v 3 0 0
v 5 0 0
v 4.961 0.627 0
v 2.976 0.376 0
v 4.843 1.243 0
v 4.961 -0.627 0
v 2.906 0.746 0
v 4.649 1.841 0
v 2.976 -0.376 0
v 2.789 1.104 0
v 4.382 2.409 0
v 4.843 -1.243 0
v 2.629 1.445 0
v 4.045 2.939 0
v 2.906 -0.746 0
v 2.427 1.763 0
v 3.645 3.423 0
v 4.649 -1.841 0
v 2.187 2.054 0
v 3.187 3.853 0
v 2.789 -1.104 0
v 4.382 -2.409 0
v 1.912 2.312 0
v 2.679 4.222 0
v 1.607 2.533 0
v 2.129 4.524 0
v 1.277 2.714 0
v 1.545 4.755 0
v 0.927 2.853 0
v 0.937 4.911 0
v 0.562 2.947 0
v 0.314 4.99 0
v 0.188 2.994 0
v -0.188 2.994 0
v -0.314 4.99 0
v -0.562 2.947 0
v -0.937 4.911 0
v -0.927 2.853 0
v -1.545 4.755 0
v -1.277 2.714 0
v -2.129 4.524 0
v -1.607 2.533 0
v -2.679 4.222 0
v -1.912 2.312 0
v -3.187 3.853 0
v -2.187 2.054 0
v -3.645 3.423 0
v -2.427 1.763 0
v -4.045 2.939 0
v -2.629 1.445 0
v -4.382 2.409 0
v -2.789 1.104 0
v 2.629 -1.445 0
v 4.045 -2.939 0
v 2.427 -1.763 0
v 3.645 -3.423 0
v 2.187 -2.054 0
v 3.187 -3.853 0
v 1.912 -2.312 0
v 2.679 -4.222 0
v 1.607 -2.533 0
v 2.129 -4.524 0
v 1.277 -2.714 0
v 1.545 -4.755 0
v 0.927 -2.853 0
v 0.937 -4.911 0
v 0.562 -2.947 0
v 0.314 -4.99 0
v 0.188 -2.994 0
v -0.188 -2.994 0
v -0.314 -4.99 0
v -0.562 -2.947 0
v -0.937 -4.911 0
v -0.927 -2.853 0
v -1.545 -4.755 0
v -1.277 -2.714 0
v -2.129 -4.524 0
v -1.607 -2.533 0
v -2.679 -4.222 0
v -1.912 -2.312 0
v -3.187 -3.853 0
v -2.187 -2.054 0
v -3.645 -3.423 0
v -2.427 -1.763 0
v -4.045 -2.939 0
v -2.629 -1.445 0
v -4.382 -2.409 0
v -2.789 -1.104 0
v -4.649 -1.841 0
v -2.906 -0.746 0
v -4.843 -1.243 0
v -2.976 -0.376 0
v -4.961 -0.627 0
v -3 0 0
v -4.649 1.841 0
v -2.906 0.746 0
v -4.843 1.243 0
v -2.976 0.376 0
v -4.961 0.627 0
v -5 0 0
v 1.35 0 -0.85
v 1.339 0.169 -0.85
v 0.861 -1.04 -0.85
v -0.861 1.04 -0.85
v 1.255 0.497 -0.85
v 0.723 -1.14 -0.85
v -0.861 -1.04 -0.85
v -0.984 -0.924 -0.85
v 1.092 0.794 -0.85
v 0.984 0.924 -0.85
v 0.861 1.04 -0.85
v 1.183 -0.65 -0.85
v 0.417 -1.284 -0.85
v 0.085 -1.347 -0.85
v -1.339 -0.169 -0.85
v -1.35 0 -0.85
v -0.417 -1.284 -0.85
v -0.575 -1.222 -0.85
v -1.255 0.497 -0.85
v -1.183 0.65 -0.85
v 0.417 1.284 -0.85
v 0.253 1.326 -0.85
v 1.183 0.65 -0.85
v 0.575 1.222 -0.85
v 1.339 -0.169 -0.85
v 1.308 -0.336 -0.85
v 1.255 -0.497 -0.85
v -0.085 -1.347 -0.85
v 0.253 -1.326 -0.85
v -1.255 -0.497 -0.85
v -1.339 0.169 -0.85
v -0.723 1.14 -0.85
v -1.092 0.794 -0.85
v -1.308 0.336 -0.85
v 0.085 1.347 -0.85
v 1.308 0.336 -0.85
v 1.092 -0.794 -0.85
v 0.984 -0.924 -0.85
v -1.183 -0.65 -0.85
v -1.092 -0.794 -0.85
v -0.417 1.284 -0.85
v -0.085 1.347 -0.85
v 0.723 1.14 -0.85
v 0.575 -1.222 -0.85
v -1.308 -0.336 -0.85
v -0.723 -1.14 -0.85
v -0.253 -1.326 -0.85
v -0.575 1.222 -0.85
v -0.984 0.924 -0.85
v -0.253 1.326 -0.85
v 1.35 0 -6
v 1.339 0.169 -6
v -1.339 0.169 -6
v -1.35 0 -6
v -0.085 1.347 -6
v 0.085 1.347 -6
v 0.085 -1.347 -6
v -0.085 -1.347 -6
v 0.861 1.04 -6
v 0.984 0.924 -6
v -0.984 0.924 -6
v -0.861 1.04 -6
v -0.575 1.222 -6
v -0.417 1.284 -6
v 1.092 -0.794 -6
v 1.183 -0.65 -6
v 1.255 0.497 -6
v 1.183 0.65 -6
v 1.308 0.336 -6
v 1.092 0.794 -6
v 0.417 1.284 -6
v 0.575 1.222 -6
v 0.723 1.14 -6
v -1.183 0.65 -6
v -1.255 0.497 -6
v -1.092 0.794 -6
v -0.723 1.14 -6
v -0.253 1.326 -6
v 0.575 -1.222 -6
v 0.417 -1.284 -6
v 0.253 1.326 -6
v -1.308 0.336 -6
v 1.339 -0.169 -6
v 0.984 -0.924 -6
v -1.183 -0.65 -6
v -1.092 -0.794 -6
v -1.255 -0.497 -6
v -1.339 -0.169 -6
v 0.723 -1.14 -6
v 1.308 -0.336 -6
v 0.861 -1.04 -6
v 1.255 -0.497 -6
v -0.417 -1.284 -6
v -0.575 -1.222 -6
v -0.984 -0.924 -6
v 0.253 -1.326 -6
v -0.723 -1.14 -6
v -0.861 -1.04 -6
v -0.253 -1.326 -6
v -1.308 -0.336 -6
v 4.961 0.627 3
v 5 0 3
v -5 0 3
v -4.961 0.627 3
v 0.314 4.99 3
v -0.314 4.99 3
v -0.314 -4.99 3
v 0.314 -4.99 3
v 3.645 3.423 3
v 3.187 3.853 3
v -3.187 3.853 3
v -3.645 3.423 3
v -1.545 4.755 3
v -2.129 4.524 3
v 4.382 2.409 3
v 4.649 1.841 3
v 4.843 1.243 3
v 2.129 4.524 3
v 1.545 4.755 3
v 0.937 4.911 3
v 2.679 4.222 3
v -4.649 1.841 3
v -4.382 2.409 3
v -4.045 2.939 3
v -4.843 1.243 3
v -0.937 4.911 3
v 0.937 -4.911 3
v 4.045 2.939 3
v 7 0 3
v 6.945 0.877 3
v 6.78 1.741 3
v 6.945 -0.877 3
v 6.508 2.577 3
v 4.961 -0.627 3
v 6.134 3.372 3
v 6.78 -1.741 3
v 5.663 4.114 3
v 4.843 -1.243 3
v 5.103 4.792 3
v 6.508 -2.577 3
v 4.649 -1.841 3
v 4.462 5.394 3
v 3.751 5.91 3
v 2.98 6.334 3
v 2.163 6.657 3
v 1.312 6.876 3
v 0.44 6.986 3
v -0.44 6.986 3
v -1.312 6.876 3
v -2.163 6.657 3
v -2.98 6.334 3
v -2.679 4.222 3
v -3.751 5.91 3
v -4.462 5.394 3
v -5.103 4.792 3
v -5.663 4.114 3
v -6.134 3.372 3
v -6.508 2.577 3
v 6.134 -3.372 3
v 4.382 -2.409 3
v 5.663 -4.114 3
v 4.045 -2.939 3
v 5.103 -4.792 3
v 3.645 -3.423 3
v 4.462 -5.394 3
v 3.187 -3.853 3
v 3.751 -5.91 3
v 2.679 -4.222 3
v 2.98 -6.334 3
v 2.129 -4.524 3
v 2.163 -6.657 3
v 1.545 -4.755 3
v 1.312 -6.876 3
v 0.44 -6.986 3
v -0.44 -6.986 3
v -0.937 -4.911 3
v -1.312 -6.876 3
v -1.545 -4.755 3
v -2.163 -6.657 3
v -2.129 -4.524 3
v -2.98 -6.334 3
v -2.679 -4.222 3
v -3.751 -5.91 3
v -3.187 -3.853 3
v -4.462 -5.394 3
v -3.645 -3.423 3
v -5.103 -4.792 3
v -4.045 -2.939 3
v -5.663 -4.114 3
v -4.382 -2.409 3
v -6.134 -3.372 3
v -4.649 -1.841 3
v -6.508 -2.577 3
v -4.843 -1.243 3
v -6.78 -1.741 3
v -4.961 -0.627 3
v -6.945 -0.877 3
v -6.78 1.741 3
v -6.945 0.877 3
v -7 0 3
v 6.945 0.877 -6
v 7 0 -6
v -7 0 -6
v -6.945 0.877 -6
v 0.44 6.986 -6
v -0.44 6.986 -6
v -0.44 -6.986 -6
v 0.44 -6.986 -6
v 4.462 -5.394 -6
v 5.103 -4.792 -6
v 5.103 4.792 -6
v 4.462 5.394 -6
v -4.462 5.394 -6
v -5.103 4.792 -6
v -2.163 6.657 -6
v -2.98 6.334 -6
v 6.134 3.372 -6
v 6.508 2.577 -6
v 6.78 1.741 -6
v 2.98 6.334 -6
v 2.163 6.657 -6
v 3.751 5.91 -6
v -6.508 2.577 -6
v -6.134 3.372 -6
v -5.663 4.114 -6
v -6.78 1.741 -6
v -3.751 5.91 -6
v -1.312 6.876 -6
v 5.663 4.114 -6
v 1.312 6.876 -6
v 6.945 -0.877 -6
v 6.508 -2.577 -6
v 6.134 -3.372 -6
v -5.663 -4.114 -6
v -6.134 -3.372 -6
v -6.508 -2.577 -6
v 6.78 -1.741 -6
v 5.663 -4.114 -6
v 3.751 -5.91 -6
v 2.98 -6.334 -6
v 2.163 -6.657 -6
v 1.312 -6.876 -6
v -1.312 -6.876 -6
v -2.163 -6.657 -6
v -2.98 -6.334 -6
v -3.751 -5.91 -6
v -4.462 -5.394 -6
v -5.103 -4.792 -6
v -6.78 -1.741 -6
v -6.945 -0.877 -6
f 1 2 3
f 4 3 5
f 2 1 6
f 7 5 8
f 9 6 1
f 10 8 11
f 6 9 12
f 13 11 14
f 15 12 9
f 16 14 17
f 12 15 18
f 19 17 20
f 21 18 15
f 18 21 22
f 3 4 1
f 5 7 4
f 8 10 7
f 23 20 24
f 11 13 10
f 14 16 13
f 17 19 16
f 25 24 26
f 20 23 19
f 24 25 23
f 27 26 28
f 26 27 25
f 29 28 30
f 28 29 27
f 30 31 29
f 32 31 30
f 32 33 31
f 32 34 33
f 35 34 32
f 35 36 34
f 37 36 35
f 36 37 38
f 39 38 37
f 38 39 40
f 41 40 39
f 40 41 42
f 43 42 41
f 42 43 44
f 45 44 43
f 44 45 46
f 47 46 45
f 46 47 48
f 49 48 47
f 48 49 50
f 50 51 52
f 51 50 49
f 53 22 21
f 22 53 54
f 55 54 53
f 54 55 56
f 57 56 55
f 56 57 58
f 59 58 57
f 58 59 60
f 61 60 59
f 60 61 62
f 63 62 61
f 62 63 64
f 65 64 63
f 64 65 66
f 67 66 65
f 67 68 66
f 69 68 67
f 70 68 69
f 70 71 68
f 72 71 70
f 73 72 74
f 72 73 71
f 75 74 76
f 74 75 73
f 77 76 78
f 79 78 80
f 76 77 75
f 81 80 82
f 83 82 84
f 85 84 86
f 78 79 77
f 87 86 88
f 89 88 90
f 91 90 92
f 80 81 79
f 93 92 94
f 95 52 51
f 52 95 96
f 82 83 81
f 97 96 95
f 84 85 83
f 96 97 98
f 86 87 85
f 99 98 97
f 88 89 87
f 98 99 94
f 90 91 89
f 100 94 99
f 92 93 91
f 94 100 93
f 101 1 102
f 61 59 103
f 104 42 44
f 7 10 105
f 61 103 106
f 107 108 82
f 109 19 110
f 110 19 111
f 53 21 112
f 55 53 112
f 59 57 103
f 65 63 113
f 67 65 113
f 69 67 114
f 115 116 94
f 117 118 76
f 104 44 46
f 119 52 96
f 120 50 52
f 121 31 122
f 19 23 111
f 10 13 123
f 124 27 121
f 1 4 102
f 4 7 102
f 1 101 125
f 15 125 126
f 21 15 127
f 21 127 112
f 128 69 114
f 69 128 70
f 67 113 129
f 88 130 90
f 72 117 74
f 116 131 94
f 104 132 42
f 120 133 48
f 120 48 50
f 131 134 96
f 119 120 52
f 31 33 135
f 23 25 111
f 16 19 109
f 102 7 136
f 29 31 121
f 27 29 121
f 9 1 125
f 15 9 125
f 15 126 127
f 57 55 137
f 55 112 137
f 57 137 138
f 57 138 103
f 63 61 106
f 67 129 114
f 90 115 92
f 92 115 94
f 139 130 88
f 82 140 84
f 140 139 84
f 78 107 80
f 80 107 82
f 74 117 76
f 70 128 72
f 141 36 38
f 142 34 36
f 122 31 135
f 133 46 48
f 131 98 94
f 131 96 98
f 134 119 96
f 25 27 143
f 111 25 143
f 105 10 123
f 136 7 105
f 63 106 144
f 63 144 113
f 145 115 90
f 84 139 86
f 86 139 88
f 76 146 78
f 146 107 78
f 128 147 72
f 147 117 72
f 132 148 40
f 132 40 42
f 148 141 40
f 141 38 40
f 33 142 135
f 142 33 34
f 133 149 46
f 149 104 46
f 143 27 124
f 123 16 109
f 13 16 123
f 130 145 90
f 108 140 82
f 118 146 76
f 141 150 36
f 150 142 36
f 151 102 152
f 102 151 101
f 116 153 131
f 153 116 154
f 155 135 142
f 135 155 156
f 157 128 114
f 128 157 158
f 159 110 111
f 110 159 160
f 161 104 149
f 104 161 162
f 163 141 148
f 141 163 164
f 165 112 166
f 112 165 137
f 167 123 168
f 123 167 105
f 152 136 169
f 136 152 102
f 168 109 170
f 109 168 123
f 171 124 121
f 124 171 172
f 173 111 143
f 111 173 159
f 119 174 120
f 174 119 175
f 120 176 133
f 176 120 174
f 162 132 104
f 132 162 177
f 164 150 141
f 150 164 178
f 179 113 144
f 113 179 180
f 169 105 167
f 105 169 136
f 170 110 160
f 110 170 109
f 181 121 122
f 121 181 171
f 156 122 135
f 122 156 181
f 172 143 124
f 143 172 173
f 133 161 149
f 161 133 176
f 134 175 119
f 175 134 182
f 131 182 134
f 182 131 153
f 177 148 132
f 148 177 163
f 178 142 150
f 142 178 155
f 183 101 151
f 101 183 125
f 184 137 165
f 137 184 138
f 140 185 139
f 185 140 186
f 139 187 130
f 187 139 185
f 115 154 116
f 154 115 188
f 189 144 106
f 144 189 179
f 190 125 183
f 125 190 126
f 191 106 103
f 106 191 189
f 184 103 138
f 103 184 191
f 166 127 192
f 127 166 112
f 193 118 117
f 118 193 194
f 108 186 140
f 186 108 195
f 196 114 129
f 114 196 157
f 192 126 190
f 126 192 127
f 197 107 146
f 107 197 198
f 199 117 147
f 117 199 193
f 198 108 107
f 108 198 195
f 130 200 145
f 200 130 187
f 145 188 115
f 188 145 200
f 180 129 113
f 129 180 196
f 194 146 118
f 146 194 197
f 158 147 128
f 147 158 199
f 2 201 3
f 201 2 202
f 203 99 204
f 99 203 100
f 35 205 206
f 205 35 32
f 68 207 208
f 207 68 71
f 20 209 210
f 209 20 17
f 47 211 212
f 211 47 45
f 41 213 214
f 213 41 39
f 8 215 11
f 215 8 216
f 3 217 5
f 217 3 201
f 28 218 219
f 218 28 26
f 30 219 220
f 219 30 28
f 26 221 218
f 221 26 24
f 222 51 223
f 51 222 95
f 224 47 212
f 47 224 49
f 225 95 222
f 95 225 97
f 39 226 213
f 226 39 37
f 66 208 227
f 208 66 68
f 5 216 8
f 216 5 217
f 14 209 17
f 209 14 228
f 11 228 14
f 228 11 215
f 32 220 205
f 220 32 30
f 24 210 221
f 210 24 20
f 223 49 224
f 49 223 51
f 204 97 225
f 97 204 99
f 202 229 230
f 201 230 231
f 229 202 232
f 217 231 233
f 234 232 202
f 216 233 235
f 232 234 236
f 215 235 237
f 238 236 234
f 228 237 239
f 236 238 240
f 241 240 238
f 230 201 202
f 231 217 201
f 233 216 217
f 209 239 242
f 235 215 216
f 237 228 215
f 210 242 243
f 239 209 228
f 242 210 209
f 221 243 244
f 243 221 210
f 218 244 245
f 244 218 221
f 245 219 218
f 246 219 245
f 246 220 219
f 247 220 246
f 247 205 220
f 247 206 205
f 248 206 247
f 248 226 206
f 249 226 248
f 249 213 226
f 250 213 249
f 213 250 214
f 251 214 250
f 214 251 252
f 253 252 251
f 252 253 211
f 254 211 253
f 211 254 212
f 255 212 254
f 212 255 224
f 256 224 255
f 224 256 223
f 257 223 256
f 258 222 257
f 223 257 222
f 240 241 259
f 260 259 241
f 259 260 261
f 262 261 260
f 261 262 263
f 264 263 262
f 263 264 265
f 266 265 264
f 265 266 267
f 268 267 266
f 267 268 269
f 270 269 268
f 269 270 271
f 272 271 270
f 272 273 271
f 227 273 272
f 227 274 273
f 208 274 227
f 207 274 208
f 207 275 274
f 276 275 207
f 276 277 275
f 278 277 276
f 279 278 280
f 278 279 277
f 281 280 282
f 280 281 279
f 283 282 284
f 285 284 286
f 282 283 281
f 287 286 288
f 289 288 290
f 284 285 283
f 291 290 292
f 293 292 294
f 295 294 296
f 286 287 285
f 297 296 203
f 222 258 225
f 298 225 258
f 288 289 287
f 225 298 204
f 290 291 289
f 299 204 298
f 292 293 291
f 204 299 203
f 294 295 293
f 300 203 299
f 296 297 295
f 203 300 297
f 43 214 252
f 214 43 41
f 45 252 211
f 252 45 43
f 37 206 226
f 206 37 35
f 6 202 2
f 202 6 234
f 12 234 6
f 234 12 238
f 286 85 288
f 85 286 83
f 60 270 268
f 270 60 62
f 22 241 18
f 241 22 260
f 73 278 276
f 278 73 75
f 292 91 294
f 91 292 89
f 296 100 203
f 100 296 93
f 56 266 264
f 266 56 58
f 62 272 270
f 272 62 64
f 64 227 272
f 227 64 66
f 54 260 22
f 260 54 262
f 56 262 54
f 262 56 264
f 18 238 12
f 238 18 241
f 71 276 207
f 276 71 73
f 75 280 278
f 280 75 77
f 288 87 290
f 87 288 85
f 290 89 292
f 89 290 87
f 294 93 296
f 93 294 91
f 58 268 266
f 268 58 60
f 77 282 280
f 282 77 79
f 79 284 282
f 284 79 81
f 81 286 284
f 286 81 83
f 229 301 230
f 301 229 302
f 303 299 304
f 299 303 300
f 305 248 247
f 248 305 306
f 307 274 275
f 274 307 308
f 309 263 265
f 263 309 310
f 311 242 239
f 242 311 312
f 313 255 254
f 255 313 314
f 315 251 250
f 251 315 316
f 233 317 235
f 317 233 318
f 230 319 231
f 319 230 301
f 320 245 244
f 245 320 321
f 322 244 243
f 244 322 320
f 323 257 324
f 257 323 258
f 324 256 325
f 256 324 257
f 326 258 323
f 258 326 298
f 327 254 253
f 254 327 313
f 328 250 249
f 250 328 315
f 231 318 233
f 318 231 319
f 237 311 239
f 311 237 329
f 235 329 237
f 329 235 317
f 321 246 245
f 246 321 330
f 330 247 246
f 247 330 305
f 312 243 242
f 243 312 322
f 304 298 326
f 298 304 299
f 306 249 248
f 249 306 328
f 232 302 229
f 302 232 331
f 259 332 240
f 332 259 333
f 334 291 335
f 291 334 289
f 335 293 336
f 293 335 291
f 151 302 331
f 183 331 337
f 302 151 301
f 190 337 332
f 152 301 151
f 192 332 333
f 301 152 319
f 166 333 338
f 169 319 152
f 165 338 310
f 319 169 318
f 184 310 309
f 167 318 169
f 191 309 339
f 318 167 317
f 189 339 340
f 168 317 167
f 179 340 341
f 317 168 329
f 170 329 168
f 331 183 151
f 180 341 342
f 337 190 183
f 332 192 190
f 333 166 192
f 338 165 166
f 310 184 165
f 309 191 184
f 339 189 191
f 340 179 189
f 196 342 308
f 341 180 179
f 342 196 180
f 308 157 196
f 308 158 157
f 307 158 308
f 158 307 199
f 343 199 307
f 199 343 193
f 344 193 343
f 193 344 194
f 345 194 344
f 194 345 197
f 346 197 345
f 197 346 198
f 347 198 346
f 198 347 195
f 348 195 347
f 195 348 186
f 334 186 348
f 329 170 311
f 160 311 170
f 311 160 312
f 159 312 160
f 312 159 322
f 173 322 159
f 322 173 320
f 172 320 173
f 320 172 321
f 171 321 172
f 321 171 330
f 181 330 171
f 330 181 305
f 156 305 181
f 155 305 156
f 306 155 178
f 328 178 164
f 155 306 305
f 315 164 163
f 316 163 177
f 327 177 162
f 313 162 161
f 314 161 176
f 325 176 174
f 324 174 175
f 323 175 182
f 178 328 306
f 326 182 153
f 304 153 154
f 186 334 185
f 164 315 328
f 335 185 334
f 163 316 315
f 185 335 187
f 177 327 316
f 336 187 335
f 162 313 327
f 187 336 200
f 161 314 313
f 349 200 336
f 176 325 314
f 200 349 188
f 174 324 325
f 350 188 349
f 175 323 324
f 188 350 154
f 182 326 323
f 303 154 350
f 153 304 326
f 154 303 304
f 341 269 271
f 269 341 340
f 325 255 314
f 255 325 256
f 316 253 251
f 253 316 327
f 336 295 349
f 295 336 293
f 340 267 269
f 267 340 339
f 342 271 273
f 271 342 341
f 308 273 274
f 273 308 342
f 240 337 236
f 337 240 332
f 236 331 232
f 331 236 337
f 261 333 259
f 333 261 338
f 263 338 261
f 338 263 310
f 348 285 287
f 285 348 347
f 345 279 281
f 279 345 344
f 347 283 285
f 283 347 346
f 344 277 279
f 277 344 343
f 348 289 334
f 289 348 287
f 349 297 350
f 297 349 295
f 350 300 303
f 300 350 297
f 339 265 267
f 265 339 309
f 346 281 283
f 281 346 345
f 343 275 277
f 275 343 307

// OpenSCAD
$fn = 50;

difference() {
	union() {
		translate(v = [0, 0, -6.0]) {
			cylinder(h = 9, r = 7.0);
		}
	}
	union() {
		translate(v = [0, 0, 0]) {
			rotate(a = [0, 0, 0]) {
				difference() {
					union() {
						translate(v = [0, 0, -9.0]) {
							cylinder(h = 9, r = 1.0);
						}
						translate(v = [0, 0, -0.85]) {
							cylinder(h = 0.85, r1 = 1.35, r2 = 3.0);
						}
						translate(v = [0, 0, -9.0]) {
							cylinder(h = 9, r = 1.35);
						}
						translate(v = [0, 0, -9.0]) {
							cylinder(h = 9, r = 1.0);
						}
					}
					union();
				}
			}
		}
		#cylinder(h = 3, r = 5.0);
	}
}
